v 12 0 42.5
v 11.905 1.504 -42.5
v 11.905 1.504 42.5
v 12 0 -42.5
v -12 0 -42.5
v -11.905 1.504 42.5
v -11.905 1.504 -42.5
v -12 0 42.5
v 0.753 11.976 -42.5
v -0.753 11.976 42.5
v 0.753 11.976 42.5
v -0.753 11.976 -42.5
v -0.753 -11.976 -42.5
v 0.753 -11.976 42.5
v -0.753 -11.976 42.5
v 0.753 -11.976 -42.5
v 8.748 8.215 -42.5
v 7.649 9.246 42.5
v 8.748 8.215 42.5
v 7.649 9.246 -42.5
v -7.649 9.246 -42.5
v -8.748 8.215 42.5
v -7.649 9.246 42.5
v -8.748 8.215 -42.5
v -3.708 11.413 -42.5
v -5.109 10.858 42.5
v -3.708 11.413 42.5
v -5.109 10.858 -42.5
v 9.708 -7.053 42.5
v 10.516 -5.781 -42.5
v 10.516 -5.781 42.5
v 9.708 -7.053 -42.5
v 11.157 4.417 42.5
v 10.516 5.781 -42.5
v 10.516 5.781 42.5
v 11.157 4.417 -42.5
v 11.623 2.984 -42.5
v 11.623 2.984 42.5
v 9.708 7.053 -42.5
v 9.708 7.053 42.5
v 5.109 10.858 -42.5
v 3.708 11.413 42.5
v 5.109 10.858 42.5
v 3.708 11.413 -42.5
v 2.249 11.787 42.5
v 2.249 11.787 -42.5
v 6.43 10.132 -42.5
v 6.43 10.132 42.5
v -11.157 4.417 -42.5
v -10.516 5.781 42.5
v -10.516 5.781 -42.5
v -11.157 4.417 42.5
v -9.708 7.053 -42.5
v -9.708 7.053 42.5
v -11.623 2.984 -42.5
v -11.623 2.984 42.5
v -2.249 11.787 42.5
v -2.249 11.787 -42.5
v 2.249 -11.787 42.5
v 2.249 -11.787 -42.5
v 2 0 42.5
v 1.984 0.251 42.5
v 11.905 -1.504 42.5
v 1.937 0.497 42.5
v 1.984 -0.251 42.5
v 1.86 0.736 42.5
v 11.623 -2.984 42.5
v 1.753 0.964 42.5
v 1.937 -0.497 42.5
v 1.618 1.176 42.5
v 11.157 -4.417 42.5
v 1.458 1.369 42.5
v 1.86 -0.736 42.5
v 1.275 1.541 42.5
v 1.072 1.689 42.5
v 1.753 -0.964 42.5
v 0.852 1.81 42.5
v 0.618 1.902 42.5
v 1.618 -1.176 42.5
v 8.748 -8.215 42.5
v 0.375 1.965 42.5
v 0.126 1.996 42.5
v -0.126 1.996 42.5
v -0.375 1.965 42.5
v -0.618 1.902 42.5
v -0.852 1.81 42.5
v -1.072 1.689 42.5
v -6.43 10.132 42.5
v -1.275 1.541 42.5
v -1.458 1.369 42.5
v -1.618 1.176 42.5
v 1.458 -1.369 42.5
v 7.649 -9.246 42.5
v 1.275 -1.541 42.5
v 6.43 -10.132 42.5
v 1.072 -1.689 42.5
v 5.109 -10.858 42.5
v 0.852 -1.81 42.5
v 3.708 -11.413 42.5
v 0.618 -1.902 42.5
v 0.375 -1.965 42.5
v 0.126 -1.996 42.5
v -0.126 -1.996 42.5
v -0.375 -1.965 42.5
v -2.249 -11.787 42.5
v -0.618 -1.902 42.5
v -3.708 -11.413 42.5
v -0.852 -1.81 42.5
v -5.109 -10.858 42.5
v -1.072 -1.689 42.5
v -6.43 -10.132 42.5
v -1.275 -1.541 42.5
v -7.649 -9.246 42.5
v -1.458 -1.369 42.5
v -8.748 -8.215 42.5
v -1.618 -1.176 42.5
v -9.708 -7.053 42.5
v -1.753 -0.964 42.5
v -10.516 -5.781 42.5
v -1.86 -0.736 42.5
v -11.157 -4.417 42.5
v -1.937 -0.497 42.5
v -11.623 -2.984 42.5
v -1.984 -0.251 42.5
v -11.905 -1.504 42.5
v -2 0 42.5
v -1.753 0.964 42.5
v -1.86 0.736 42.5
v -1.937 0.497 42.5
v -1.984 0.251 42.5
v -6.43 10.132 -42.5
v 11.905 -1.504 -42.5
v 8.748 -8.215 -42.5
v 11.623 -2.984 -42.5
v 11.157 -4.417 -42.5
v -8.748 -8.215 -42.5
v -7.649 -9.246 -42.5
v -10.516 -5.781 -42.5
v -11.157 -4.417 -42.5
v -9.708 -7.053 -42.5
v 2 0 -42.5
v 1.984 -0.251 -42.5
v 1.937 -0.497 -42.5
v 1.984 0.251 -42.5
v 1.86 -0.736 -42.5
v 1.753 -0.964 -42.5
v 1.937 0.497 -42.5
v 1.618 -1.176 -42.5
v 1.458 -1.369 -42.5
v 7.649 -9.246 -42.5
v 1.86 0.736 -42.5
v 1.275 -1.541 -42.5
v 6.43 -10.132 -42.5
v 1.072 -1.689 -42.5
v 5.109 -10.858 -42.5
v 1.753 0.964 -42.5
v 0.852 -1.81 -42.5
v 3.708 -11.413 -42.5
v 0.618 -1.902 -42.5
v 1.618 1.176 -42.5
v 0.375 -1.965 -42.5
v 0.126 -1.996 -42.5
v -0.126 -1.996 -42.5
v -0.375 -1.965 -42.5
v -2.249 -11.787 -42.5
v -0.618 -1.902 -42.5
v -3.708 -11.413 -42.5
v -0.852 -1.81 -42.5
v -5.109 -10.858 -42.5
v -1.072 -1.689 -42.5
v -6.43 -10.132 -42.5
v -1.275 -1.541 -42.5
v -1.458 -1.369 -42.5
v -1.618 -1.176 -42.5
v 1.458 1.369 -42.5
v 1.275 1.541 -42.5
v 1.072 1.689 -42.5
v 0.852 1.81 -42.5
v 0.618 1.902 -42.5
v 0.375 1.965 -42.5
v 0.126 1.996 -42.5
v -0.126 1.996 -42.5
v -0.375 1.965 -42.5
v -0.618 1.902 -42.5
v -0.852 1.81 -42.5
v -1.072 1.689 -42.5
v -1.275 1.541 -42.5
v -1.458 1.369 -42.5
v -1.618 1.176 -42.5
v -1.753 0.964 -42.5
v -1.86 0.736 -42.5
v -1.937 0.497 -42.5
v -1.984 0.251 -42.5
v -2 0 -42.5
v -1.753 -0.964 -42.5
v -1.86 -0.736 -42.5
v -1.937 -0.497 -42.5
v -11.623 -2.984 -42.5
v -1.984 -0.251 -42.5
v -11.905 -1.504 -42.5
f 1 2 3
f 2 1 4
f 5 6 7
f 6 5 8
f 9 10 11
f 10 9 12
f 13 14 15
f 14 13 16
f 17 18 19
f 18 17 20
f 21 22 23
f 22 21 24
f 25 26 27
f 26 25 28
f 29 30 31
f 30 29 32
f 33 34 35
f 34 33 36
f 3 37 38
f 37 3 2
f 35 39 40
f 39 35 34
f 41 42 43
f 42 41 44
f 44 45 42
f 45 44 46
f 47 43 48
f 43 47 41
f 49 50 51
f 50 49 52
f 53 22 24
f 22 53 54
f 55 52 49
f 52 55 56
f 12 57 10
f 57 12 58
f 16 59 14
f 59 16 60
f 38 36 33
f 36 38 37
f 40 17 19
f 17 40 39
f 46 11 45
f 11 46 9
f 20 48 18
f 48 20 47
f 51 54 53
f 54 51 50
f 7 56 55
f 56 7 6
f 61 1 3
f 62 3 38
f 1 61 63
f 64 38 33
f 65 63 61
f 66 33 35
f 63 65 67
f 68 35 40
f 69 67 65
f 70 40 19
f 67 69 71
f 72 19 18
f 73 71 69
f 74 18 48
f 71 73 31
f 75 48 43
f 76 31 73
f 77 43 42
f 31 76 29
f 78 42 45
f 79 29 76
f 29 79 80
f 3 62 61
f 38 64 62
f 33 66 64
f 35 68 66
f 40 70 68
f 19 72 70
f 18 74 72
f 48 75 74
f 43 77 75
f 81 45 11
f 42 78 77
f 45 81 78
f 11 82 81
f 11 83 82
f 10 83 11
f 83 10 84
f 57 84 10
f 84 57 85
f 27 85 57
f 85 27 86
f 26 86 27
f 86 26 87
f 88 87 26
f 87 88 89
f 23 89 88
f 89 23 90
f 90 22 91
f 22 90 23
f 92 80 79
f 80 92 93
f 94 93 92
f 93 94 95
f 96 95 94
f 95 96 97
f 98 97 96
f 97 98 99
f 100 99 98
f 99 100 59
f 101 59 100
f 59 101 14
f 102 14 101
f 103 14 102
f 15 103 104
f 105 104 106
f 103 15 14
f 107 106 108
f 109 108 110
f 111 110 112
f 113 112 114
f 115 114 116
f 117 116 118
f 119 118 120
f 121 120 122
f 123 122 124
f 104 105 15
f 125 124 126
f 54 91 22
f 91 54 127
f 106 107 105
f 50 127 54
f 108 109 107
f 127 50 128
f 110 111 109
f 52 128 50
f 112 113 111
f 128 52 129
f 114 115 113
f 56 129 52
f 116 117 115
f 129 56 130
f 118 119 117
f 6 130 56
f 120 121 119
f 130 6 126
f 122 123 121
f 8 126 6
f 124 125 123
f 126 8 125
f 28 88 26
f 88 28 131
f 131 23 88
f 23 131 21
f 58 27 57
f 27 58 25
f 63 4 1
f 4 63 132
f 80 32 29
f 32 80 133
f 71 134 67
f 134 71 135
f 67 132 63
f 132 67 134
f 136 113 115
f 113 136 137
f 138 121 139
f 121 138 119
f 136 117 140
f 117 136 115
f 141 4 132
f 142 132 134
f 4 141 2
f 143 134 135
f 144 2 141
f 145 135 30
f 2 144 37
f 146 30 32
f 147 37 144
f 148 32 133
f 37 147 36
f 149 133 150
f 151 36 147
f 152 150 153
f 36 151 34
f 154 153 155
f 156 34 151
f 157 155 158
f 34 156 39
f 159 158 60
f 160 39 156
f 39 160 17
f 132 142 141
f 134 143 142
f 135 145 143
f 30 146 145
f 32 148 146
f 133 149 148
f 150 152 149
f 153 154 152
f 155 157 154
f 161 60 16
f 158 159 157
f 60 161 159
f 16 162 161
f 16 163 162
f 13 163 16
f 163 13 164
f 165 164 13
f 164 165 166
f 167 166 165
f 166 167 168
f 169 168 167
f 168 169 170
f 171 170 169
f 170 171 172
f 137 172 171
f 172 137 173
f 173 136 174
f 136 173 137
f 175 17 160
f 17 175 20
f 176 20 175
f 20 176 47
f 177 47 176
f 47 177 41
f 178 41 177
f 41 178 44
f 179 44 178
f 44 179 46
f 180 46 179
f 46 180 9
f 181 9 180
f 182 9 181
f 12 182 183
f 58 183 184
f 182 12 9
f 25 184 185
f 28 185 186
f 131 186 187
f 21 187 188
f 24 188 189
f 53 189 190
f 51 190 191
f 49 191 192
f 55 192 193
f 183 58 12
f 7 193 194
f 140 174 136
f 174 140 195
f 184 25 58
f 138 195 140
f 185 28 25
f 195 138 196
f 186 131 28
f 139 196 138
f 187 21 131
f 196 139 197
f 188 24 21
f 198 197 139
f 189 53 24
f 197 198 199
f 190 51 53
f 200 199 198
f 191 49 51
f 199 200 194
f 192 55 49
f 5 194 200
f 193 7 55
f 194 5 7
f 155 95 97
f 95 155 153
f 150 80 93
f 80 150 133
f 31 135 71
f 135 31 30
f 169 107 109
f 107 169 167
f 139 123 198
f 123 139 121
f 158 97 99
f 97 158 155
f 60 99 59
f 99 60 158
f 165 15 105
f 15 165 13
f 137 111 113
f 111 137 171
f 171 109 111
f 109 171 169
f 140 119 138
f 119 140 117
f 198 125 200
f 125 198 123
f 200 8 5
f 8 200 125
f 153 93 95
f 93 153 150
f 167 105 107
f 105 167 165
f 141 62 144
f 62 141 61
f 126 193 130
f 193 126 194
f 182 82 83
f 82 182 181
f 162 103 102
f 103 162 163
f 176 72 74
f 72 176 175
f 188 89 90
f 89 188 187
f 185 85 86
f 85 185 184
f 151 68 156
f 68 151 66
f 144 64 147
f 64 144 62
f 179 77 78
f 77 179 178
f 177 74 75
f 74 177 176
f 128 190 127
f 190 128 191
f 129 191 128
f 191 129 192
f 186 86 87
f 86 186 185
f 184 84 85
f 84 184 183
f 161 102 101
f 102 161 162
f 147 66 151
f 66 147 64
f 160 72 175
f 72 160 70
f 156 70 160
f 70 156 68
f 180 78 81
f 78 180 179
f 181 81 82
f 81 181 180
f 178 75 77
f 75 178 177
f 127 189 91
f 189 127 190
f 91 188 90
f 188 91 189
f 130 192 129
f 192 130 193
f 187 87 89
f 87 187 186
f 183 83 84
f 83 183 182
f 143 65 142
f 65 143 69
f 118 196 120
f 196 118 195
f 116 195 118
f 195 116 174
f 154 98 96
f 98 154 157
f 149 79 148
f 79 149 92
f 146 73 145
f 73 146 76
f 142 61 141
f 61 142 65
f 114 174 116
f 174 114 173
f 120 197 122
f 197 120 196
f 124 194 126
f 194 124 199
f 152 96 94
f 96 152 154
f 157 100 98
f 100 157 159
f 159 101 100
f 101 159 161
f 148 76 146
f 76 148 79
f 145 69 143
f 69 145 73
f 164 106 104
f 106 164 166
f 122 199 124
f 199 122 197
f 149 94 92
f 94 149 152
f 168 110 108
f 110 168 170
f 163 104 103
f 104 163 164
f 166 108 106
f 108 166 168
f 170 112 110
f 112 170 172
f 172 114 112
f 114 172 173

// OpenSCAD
$fn = 50;


difference() {
	union() {
		translate(v = [0, 0, -42.5000000000]) {
			cylinder(h = 85, r = 12.0000000000);
		}
	}
	union() {
		translate(v = [0, 0, -100.0000000000]) {
			cylinder(h = 200, r = 2.0000000000);
		}
	}
}
